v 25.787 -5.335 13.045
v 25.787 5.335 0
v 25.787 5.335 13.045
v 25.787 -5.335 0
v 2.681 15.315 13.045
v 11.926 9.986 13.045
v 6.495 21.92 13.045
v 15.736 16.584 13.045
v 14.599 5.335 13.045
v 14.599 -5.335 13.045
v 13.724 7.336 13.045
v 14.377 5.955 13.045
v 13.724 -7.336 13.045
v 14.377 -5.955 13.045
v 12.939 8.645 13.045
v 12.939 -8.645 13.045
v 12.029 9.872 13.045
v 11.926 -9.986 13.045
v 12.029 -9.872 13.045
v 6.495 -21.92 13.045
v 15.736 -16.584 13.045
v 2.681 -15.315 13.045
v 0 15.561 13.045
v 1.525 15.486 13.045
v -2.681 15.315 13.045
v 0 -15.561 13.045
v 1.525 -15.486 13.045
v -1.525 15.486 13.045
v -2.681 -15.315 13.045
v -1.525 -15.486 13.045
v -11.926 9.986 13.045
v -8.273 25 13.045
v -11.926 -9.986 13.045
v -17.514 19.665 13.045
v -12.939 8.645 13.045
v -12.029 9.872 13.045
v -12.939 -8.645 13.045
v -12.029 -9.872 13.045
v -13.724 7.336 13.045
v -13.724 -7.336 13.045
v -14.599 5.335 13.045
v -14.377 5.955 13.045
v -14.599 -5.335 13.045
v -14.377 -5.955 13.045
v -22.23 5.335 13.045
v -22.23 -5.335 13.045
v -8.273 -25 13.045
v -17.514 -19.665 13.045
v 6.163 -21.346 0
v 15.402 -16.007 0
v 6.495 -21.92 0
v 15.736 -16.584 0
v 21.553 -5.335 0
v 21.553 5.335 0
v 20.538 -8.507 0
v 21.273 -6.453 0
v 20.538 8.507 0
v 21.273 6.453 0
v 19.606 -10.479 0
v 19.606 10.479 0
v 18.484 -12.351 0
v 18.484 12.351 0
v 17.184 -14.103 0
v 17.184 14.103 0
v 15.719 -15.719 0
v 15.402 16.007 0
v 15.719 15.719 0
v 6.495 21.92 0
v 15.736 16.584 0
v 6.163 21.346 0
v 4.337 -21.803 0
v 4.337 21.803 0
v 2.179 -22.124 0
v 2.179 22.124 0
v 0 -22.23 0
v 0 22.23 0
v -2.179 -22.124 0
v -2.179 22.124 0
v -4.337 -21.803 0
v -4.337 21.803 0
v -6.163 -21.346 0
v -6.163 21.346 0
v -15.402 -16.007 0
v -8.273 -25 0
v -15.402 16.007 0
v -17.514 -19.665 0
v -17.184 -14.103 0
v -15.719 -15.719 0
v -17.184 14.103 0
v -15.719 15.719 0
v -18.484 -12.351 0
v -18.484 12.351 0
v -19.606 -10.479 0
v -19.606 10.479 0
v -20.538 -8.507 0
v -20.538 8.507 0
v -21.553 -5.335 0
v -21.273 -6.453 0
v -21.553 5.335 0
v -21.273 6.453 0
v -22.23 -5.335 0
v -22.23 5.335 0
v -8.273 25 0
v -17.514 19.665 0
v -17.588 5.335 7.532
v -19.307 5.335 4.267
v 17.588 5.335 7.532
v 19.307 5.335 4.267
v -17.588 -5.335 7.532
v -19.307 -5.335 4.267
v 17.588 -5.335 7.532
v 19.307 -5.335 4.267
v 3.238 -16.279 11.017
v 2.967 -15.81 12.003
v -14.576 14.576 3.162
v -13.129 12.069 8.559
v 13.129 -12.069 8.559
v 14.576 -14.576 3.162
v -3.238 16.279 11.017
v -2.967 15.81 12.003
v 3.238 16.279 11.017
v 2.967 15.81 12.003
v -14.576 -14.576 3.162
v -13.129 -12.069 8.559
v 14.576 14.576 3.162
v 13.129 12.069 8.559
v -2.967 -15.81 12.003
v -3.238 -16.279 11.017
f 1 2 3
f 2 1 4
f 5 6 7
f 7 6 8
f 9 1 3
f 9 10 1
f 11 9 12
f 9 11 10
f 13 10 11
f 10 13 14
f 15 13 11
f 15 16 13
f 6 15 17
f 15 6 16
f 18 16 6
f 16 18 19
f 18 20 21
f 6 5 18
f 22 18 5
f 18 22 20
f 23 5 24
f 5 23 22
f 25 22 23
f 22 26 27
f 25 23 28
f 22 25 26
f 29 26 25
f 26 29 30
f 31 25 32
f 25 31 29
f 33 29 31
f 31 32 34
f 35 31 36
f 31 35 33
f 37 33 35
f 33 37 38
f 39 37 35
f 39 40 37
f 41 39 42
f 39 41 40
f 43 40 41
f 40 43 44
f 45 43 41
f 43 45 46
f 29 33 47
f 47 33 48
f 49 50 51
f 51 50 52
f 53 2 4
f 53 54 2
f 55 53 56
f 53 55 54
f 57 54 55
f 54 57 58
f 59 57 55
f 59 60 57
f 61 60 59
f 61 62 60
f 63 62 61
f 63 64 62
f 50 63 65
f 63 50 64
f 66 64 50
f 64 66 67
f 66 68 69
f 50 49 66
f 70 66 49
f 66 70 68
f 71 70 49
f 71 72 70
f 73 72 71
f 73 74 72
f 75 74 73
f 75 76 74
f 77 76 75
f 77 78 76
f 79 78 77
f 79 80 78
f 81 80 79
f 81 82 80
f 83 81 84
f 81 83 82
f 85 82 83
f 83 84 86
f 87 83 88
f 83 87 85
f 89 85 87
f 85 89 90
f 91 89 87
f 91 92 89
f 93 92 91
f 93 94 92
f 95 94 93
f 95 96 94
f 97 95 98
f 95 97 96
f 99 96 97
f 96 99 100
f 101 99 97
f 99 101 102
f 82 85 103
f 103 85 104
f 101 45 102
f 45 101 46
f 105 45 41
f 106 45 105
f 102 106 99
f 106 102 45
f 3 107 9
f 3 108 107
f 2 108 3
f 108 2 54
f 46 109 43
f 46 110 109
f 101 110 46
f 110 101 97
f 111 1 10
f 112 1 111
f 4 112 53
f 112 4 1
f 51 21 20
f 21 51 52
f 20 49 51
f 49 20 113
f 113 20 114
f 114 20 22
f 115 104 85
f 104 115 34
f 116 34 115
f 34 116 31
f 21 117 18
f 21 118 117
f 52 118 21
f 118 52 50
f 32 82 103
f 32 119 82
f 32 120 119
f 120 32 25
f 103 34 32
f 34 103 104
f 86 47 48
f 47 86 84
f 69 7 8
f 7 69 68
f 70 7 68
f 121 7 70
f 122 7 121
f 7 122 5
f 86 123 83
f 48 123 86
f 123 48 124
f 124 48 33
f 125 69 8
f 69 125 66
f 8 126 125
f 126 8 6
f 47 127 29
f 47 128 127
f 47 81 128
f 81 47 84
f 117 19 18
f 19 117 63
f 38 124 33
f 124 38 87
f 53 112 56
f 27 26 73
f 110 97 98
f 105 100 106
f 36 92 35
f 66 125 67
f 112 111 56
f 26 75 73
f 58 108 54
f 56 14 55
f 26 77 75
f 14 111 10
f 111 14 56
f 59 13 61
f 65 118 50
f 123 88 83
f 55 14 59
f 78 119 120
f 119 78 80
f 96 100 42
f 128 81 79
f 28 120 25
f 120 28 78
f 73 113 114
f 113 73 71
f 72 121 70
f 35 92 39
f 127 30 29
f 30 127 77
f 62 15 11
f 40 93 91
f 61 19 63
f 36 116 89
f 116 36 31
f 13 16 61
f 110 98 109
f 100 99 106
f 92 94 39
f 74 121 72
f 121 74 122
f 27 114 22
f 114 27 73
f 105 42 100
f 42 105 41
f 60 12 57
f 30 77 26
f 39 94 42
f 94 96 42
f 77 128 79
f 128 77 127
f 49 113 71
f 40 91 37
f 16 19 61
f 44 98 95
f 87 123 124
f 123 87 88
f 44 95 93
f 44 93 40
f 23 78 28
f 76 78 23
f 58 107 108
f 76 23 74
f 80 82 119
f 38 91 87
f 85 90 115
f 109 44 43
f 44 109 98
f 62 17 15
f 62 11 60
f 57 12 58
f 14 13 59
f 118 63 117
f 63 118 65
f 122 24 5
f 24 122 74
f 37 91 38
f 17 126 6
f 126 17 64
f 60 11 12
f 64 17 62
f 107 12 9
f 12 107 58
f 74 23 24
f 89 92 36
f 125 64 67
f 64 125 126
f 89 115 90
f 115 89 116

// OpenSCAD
/* doodle-meta {"version":1,"parameters":{"base_diameter":{"label":"Base Diameter","description":"Diameter of the knob's circular base","unit":"mm","feature":"base_diameter"},"top_diameter":{"label":"Top Diameter","description":"Diameter of the knob's top surface","unit":"mm","feature":"top_diameter"},"knob_height":{"label":"Knob Height","description":"Total height of the knob","unit":"mm","feature":"knob_height"},"tab_count":{"label":"Tab Count","description":"Number of radial grip tabs","unit":"count","feature":"tab_count"},"tab_width":{"label":"Tab Width","description":"Width of each radial tab","unit":"mm","feature":"tab_width"},"tab_extension":{"label":"Tab Extension","description":"How far tabs extend beyond the base radius","unit":"mm","feature":"tab_extension"}},"features":{"base_diameter":{"kind":"dimension","axis":"x","label":"Base Diameter"},"top_diameter":{"kind":"dimension","axis":"x","label":"Top Diameter"},"knob_height":{"kind":"dimension","axis":"z","label":"Knob Height"},"tab_count":{"kind":"region","label":"Radial Tabs","min":[0,0,0],"max":[{"parameter":"base_diameter","scale":0.5,"offset":0},{"parameter":"base_diameter","scale":0.5,"offset":0},{"parameter":"knob_height","scale":1,"offset":0}]},"tab_width":{"kind":"region","label":"Tab Width","min":[0,0,0],"max":[{"parameter":"tab_width","scale":1,"offset":0},{"parameter":"tab_width","scale":1,"offset":0},{"parameter":"knob_height","scale":1,"offset":0}]},"tab_extension":{"kind":"region","label":"Tab Extension","min":[0,0,0],"max":[{"parameter":"base_diameter","scale":0.5,"offset":0},{"parameter":"base_diameter","scale":0.5,"offset":0},{"parameter":"knob_height","scale":1,"offset":0}]}}} */

// Parameters
base_diameter = 44.46104323391844;
top_diameter = 31.12273026374291;
knob_height = 13.04487008483167;
tab_count = 3;
tab_width = 10.670650376140426;
tab_extension = 3.556883458713475;

// Derived values
base_radius = base_diameter / 2;
top_radius = top_diameter / 2;
tab_length = base_radius + tab_extension;

// Module for the main tapered body (frustum)
module knob_body() {
    linear_extrude(height = knob_height, scale = top_radius / base_radius) {
        circle(r = base_radius, $fn = 64);
    }
}

// Module for a single tab
module tab() {
    // Tab is a rectangular prism extending radially
    // Positioned so it starts inside the base and extends outwards
    // Width is tab_width, Length is tab_length, Height is knob_height
    // We create it centered on X axis, extending from -base_radius to tab_length
    // To ensure manifold union, we start slightly inside the base
    translate([-base_radius, -tab_width/2, 0]) {
        cube([tab_length + base_radius, tab_width, knob_height]);
    }
}

// Module for all tabs
module tabs() {
    for (i = [0 : tab_count - 1]) {
        rotate([0, 0, i * (360 / tab_count)]) {
            tab();
        }
    }
}

// Main assembly
union() {
    knob_body();
    tabs();
}
